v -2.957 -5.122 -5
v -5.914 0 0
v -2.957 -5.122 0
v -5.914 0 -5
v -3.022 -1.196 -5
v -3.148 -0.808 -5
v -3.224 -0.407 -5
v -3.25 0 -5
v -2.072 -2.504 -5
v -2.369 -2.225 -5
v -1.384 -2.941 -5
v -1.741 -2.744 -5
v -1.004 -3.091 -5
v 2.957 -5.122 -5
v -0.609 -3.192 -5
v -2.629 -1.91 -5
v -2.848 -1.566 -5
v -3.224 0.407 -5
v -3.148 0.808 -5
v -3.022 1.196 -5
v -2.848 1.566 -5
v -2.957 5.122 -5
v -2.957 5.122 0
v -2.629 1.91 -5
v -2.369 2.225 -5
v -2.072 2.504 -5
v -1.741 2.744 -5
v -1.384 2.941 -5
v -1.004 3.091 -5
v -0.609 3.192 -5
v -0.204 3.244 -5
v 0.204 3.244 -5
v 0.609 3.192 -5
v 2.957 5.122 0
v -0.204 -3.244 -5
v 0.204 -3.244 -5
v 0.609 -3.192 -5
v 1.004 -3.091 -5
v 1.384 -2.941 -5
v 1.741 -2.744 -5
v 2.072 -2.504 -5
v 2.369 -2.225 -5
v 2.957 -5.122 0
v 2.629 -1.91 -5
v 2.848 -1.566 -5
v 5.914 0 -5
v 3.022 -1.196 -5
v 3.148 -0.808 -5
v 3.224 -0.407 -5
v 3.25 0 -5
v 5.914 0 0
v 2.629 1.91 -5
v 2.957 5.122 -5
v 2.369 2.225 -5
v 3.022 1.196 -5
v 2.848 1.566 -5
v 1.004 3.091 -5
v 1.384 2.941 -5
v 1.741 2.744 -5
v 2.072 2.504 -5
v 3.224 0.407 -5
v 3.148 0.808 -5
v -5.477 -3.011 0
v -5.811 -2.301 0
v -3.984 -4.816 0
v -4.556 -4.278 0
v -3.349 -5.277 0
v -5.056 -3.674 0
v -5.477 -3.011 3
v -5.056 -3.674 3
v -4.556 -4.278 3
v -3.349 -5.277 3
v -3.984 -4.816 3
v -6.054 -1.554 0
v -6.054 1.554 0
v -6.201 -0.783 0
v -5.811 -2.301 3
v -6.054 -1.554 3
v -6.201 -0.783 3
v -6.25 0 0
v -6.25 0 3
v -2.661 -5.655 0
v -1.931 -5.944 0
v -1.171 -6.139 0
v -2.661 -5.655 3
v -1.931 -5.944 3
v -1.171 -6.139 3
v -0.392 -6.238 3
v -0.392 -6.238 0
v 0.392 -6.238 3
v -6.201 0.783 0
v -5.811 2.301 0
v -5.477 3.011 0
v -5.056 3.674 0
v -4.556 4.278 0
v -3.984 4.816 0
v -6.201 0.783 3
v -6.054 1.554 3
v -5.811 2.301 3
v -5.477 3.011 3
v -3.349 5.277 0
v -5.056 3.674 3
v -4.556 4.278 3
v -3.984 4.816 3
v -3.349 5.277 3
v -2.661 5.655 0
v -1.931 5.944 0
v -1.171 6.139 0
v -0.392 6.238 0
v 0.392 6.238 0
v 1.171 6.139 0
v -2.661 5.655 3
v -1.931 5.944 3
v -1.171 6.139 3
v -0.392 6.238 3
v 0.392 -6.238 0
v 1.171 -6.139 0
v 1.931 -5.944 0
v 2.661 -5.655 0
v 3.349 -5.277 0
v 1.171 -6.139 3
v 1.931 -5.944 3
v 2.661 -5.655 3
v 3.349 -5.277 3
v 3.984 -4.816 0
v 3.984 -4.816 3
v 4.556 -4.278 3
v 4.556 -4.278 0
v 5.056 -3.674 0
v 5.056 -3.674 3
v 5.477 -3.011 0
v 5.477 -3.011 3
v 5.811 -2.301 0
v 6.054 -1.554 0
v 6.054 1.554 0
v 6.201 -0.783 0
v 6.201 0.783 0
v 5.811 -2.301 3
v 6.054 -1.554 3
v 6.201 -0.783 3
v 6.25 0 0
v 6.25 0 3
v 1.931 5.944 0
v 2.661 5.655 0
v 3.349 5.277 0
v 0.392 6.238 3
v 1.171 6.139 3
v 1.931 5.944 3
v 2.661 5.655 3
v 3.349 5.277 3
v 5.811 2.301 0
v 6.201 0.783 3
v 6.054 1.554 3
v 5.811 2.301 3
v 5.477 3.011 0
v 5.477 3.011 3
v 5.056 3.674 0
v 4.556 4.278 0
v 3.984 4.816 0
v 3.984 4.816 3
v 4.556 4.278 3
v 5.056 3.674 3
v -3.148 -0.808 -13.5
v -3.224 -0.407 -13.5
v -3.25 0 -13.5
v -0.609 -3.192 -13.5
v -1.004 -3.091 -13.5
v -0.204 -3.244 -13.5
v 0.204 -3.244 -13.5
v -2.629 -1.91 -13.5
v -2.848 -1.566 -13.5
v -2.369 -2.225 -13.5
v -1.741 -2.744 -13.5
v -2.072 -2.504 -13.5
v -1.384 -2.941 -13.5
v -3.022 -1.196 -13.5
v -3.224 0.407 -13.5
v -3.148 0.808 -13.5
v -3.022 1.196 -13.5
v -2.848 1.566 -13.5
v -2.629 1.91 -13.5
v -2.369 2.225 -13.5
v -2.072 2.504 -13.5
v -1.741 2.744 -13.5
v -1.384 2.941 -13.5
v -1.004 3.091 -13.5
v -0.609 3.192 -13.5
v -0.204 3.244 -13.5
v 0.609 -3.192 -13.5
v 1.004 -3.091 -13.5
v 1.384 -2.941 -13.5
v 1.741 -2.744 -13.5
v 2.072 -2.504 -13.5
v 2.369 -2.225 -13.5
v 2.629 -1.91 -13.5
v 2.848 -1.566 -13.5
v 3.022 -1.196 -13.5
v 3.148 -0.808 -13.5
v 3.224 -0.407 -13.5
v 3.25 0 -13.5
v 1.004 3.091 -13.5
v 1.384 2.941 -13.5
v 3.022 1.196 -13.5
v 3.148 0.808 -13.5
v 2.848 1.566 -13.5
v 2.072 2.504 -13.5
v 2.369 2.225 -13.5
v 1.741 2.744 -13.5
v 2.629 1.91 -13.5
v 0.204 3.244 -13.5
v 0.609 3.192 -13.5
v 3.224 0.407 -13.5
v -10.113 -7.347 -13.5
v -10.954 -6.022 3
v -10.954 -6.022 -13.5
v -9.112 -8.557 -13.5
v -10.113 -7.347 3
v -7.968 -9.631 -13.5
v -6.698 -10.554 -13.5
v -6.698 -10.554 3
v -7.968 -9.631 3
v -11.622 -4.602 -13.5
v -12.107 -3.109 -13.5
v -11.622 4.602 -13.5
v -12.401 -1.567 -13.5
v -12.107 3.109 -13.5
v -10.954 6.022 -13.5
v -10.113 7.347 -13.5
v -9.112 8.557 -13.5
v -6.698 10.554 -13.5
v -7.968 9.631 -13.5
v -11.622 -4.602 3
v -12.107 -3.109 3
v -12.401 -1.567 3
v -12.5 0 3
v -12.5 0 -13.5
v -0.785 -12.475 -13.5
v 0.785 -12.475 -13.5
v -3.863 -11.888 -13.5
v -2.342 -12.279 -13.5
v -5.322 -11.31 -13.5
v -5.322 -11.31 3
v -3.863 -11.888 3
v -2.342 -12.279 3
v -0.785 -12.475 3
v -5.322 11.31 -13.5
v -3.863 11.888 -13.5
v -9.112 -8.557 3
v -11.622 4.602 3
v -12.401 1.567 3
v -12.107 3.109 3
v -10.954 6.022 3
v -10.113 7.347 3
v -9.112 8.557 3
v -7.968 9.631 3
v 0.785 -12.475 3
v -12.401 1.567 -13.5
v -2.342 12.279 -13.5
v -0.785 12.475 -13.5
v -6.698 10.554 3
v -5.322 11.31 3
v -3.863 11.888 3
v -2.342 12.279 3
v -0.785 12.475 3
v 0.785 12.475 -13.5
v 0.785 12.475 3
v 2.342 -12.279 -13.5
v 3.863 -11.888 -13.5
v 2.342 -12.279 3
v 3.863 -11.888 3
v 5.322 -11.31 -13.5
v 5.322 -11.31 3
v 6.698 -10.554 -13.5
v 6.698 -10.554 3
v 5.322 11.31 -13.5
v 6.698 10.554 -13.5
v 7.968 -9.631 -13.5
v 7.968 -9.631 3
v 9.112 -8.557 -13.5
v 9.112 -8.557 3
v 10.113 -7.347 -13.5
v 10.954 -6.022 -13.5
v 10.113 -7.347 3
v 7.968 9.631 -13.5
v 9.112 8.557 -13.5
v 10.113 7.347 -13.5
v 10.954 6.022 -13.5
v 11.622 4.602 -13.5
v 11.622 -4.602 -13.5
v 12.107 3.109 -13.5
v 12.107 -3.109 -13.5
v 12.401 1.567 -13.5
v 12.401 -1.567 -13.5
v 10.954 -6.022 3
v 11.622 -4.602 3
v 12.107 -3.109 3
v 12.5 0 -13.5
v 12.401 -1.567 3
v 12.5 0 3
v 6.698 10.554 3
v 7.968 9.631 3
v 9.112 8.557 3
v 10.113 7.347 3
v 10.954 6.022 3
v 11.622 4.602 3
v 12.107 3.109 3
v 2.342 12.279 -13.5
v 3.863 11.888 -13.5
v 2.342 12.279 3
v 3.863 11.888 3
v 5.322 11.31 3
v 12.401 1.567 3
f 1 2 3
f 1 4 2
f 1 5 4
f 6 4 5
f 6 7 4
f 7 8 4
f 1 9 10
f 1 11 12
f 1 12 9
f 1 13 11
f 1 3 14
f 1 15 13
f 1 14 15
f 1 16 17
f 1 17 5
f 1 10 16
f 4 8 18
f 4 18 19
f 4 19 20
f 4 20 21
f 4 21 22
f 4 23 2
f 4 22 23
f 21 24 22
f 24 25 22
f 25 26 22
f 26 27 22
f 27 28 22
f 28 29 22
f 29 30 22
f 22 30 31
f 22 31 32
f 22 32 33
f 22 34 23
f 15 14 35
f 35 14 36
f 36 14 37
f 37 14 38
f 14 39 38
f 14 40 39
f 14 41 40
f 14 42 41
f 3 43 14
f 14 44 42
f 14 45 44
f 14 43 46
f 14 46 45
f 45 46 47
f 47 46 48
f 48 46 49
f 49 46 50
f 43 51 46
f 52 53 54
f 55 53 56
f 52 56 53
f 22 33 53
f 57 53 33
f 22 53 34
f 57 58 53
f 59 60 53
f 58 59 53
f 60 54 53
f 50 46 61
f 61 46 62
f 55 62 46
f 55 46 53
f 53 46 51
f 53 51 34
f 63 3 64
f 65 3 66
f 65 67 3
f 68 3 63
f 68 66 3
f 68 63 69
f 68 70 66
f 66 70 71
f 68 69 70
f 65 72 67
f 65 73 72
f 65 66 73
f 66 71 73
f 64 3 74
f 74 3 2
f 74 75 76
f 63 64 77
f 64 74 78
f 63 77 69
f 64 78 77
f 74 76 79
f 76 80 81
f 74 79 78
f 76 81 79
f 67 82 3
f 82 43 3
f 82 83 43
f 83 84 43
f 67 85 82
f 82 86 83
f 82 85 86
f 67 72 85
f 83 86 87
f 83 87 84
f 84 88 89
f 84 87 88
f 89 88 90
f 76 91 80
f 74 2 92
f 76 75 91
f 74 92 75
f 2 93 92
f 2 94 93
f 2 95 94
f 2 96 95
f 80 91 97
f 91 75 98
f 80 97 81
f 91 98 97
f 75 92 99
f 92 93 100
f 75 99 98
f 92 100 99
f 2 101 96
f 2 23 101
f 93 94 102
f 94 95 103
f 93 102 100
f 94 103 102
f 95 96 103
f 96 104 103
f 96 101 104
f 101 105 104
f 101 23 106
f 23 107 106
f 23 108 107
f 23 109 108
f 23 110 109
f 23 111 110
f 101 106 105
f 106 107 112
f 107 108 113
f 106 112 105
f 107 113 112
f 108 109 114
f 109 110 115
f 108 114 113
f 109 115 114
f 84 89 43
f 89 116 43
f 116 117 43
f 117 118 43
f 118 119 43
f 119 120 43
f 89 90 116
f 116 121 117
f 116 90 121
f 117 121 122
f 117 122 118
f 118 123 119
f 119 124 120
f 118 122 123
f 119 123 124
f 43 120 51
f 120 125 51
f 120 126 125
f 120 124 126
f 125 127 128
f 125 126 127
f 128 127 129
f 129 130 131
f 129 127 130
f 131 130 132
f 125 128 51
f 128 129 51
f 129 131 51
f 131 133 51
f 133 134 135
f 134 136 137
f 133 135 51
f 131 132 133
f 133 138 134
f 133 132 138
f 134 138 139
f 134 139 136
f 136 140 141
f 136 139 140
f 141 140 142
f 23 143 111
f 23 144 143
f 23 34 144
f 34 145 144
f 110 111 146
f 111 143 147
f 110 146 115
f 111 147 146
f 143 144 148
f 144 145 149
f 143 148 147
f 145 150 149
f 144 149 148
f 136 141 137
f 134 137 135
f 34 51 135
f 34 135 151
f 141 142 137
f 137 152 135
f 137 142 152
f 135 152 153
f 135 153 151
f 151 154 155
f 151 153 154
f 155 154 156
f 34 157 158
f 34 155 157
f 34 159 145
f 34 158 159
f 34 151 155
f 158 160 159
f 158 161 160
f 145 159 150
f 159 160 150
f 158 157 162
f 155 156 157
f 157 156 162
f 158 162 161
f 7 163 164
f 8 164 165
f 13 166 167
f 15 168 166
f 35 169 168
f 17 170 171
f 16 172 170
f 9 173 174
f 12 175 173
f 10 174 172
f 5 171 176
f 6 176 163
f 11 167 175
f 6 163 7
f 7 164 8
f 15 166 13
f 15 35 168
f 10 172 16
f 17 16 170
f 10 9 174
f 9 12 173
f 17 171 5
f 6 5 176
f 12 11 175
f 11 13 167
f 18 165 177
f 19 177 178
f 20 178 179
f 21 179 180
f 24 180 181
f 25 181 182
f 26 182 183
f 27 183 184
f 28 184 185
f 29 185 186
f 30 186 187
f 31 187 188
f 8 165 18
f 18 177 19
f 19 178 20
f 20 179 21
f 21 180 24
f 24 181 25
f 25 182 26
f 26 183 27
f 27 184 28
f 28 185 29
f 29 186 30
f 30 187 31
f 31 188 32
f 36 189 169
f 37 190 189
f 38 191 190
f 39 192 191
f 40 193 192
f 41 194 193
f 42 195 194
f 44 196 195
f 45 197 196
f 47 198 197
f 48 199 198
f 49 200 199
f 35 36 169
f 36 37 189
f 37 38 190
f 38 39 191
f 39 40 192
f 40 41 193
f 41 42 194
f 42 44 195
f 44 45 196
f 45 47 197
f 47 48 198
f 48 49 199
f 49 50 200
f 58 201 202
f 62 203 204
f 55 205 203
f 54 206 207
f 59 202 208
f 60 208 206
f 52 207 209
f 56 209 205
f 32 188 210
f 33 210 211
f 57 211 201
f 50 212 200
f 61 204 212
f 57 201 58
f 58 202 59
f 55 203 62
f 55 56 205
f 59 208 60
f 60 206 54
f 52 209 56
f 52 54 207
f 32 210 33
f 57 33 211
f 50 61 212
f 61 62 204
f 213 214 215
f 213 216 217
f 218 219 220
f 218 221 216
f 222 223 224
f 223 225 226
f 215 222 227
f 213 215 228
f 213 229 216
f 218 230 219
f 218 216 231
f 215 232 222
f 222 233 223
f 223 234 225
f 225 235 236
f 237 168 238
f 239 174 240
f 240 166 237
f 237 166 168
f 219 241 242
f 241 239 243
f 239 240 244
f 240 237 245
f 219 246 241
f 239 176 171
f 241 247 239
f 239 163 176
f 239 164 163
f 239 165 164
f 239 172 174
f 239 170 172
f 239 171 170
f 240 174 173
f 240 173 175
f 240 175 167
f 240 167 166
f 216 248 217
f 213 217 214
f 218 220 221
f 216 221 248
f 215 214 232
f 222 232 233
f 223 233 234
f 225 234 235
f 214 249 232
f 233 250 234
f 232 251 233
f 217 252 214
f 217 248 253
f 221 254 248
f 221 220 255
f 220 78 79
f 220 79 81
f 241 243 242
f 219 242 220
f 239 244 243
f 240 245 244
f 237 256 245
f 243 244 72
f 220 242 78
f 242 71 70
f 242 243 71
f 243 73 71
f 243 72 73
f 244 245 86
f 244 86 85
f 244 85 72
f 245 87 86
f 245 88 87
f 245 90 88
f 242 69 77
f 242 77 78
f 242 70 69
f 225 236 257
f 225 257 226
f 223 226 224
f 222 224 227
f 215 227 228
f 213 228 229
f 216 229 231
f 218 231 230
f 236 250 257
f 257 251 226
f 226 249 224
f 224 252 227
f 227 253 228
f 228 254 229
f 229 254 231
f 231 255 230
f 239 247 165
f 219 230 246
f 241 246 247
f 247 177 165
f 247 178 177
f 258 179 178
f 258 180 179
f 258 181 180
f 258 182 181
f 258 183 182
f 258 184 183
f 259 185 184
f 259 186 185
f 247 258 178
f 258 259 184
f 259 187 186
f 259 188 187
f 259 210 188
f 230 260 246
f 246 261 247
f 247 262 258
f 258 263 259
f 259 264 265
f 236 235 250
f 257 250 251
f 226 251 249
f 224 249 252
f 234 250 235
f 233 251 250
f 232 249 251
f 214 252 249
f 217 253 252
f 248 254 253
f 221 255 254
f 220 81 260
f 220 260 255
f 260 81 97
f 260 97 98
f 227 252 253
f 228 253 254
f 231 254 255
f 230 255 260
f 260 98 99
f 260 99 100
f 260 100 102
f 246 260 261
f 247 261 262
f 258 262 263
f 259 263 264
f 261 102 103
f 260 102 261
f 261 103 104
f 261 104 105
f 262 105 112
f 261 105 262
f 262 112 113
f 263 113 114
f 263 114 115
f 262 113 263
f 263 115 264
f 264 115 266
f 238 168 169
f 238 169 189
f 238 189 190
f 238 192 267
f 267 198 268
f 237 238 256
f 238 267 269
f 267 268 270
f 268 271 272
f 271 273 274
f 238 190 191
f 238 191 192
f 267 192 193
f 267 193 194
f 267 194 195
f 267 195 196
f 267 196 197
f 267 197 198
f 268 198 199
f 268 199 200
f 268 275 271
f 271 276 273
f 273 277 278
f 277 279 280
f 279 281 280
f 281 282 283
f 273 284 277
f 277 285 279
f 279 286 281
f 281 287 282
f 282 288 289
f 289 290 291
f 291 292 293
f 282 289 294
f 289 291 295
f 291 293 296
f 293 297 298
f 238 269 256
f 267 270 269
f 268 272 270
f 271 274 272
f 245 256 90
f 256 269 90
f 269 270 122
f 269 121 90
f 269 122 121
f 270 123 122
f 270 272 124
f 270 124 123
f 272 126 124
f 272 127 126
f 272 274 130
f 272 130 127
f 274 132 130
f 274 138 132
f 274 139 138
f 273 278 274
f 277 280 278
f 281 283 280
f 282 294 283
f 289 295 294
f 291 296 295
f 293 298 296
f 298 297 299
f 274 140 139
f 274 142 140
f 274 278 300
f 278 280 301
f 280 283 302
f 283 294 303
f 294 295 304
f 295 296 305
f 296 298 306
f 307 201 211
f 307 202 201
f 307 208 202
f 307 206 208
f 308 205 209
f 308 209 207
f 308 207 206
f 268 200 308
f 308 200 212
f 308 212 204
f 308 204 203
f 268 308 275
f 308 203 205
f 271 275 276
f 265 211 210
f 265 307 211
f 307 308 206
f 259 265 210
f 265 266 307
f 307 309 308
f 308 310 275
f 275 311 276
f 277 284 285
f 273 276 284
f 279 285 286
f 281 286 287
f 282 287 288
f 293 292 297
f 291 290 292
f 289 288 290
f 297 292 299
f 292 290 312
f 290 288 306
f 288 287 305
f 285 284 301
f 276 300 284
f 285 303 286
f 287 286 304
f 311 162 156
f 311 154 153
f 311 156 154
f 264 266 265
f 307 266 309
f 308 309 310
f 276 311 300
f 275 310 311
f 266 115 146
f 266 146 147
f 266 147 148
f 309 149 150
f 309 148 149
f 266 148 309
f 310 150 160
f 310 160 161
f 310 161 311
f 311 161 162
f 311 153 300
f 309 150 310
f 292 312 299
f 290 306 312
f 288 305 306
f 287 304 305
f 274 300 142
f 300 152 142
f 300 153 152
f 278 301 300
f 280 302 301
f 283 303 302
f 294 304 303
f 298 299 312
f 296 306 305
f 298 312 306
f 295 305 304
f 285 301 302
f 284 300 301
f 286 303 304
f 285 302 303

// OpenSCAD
$fn = 50;

difference() {
	union() {
		translate(v = [0, 0, -13.5]) {
			cylinder(h = 16.5, r = 12.5);
		}
	}
	union() {
		translate(v = [0, 0, 0]) {
			rotate(a = [0, 0, 0]) {
				difference() {
					union() {
						translate(v = [0, 0, -5]) {
							linear_extrude(height = 5) {
								polygon(points = [[5.914249999999999, 0.0], [2.957125, 5.1218907443321156], [-2.9571249999999982, 5.1218907443321156], [-5.914249999999999, 7.242867331857232e-16], [-2.9571250000000022, -5.121890744332115], [2.9571249999999956, -5.121890744332118]]);
							}
						}
					}
					union();
				}
			}
		}
		#cylinder(h = 3, r = 6.25);
		#translate(v = [0, 0, -100.0]) {
			cylinder(h = 200, r = 3.25);
		}
	}
}
